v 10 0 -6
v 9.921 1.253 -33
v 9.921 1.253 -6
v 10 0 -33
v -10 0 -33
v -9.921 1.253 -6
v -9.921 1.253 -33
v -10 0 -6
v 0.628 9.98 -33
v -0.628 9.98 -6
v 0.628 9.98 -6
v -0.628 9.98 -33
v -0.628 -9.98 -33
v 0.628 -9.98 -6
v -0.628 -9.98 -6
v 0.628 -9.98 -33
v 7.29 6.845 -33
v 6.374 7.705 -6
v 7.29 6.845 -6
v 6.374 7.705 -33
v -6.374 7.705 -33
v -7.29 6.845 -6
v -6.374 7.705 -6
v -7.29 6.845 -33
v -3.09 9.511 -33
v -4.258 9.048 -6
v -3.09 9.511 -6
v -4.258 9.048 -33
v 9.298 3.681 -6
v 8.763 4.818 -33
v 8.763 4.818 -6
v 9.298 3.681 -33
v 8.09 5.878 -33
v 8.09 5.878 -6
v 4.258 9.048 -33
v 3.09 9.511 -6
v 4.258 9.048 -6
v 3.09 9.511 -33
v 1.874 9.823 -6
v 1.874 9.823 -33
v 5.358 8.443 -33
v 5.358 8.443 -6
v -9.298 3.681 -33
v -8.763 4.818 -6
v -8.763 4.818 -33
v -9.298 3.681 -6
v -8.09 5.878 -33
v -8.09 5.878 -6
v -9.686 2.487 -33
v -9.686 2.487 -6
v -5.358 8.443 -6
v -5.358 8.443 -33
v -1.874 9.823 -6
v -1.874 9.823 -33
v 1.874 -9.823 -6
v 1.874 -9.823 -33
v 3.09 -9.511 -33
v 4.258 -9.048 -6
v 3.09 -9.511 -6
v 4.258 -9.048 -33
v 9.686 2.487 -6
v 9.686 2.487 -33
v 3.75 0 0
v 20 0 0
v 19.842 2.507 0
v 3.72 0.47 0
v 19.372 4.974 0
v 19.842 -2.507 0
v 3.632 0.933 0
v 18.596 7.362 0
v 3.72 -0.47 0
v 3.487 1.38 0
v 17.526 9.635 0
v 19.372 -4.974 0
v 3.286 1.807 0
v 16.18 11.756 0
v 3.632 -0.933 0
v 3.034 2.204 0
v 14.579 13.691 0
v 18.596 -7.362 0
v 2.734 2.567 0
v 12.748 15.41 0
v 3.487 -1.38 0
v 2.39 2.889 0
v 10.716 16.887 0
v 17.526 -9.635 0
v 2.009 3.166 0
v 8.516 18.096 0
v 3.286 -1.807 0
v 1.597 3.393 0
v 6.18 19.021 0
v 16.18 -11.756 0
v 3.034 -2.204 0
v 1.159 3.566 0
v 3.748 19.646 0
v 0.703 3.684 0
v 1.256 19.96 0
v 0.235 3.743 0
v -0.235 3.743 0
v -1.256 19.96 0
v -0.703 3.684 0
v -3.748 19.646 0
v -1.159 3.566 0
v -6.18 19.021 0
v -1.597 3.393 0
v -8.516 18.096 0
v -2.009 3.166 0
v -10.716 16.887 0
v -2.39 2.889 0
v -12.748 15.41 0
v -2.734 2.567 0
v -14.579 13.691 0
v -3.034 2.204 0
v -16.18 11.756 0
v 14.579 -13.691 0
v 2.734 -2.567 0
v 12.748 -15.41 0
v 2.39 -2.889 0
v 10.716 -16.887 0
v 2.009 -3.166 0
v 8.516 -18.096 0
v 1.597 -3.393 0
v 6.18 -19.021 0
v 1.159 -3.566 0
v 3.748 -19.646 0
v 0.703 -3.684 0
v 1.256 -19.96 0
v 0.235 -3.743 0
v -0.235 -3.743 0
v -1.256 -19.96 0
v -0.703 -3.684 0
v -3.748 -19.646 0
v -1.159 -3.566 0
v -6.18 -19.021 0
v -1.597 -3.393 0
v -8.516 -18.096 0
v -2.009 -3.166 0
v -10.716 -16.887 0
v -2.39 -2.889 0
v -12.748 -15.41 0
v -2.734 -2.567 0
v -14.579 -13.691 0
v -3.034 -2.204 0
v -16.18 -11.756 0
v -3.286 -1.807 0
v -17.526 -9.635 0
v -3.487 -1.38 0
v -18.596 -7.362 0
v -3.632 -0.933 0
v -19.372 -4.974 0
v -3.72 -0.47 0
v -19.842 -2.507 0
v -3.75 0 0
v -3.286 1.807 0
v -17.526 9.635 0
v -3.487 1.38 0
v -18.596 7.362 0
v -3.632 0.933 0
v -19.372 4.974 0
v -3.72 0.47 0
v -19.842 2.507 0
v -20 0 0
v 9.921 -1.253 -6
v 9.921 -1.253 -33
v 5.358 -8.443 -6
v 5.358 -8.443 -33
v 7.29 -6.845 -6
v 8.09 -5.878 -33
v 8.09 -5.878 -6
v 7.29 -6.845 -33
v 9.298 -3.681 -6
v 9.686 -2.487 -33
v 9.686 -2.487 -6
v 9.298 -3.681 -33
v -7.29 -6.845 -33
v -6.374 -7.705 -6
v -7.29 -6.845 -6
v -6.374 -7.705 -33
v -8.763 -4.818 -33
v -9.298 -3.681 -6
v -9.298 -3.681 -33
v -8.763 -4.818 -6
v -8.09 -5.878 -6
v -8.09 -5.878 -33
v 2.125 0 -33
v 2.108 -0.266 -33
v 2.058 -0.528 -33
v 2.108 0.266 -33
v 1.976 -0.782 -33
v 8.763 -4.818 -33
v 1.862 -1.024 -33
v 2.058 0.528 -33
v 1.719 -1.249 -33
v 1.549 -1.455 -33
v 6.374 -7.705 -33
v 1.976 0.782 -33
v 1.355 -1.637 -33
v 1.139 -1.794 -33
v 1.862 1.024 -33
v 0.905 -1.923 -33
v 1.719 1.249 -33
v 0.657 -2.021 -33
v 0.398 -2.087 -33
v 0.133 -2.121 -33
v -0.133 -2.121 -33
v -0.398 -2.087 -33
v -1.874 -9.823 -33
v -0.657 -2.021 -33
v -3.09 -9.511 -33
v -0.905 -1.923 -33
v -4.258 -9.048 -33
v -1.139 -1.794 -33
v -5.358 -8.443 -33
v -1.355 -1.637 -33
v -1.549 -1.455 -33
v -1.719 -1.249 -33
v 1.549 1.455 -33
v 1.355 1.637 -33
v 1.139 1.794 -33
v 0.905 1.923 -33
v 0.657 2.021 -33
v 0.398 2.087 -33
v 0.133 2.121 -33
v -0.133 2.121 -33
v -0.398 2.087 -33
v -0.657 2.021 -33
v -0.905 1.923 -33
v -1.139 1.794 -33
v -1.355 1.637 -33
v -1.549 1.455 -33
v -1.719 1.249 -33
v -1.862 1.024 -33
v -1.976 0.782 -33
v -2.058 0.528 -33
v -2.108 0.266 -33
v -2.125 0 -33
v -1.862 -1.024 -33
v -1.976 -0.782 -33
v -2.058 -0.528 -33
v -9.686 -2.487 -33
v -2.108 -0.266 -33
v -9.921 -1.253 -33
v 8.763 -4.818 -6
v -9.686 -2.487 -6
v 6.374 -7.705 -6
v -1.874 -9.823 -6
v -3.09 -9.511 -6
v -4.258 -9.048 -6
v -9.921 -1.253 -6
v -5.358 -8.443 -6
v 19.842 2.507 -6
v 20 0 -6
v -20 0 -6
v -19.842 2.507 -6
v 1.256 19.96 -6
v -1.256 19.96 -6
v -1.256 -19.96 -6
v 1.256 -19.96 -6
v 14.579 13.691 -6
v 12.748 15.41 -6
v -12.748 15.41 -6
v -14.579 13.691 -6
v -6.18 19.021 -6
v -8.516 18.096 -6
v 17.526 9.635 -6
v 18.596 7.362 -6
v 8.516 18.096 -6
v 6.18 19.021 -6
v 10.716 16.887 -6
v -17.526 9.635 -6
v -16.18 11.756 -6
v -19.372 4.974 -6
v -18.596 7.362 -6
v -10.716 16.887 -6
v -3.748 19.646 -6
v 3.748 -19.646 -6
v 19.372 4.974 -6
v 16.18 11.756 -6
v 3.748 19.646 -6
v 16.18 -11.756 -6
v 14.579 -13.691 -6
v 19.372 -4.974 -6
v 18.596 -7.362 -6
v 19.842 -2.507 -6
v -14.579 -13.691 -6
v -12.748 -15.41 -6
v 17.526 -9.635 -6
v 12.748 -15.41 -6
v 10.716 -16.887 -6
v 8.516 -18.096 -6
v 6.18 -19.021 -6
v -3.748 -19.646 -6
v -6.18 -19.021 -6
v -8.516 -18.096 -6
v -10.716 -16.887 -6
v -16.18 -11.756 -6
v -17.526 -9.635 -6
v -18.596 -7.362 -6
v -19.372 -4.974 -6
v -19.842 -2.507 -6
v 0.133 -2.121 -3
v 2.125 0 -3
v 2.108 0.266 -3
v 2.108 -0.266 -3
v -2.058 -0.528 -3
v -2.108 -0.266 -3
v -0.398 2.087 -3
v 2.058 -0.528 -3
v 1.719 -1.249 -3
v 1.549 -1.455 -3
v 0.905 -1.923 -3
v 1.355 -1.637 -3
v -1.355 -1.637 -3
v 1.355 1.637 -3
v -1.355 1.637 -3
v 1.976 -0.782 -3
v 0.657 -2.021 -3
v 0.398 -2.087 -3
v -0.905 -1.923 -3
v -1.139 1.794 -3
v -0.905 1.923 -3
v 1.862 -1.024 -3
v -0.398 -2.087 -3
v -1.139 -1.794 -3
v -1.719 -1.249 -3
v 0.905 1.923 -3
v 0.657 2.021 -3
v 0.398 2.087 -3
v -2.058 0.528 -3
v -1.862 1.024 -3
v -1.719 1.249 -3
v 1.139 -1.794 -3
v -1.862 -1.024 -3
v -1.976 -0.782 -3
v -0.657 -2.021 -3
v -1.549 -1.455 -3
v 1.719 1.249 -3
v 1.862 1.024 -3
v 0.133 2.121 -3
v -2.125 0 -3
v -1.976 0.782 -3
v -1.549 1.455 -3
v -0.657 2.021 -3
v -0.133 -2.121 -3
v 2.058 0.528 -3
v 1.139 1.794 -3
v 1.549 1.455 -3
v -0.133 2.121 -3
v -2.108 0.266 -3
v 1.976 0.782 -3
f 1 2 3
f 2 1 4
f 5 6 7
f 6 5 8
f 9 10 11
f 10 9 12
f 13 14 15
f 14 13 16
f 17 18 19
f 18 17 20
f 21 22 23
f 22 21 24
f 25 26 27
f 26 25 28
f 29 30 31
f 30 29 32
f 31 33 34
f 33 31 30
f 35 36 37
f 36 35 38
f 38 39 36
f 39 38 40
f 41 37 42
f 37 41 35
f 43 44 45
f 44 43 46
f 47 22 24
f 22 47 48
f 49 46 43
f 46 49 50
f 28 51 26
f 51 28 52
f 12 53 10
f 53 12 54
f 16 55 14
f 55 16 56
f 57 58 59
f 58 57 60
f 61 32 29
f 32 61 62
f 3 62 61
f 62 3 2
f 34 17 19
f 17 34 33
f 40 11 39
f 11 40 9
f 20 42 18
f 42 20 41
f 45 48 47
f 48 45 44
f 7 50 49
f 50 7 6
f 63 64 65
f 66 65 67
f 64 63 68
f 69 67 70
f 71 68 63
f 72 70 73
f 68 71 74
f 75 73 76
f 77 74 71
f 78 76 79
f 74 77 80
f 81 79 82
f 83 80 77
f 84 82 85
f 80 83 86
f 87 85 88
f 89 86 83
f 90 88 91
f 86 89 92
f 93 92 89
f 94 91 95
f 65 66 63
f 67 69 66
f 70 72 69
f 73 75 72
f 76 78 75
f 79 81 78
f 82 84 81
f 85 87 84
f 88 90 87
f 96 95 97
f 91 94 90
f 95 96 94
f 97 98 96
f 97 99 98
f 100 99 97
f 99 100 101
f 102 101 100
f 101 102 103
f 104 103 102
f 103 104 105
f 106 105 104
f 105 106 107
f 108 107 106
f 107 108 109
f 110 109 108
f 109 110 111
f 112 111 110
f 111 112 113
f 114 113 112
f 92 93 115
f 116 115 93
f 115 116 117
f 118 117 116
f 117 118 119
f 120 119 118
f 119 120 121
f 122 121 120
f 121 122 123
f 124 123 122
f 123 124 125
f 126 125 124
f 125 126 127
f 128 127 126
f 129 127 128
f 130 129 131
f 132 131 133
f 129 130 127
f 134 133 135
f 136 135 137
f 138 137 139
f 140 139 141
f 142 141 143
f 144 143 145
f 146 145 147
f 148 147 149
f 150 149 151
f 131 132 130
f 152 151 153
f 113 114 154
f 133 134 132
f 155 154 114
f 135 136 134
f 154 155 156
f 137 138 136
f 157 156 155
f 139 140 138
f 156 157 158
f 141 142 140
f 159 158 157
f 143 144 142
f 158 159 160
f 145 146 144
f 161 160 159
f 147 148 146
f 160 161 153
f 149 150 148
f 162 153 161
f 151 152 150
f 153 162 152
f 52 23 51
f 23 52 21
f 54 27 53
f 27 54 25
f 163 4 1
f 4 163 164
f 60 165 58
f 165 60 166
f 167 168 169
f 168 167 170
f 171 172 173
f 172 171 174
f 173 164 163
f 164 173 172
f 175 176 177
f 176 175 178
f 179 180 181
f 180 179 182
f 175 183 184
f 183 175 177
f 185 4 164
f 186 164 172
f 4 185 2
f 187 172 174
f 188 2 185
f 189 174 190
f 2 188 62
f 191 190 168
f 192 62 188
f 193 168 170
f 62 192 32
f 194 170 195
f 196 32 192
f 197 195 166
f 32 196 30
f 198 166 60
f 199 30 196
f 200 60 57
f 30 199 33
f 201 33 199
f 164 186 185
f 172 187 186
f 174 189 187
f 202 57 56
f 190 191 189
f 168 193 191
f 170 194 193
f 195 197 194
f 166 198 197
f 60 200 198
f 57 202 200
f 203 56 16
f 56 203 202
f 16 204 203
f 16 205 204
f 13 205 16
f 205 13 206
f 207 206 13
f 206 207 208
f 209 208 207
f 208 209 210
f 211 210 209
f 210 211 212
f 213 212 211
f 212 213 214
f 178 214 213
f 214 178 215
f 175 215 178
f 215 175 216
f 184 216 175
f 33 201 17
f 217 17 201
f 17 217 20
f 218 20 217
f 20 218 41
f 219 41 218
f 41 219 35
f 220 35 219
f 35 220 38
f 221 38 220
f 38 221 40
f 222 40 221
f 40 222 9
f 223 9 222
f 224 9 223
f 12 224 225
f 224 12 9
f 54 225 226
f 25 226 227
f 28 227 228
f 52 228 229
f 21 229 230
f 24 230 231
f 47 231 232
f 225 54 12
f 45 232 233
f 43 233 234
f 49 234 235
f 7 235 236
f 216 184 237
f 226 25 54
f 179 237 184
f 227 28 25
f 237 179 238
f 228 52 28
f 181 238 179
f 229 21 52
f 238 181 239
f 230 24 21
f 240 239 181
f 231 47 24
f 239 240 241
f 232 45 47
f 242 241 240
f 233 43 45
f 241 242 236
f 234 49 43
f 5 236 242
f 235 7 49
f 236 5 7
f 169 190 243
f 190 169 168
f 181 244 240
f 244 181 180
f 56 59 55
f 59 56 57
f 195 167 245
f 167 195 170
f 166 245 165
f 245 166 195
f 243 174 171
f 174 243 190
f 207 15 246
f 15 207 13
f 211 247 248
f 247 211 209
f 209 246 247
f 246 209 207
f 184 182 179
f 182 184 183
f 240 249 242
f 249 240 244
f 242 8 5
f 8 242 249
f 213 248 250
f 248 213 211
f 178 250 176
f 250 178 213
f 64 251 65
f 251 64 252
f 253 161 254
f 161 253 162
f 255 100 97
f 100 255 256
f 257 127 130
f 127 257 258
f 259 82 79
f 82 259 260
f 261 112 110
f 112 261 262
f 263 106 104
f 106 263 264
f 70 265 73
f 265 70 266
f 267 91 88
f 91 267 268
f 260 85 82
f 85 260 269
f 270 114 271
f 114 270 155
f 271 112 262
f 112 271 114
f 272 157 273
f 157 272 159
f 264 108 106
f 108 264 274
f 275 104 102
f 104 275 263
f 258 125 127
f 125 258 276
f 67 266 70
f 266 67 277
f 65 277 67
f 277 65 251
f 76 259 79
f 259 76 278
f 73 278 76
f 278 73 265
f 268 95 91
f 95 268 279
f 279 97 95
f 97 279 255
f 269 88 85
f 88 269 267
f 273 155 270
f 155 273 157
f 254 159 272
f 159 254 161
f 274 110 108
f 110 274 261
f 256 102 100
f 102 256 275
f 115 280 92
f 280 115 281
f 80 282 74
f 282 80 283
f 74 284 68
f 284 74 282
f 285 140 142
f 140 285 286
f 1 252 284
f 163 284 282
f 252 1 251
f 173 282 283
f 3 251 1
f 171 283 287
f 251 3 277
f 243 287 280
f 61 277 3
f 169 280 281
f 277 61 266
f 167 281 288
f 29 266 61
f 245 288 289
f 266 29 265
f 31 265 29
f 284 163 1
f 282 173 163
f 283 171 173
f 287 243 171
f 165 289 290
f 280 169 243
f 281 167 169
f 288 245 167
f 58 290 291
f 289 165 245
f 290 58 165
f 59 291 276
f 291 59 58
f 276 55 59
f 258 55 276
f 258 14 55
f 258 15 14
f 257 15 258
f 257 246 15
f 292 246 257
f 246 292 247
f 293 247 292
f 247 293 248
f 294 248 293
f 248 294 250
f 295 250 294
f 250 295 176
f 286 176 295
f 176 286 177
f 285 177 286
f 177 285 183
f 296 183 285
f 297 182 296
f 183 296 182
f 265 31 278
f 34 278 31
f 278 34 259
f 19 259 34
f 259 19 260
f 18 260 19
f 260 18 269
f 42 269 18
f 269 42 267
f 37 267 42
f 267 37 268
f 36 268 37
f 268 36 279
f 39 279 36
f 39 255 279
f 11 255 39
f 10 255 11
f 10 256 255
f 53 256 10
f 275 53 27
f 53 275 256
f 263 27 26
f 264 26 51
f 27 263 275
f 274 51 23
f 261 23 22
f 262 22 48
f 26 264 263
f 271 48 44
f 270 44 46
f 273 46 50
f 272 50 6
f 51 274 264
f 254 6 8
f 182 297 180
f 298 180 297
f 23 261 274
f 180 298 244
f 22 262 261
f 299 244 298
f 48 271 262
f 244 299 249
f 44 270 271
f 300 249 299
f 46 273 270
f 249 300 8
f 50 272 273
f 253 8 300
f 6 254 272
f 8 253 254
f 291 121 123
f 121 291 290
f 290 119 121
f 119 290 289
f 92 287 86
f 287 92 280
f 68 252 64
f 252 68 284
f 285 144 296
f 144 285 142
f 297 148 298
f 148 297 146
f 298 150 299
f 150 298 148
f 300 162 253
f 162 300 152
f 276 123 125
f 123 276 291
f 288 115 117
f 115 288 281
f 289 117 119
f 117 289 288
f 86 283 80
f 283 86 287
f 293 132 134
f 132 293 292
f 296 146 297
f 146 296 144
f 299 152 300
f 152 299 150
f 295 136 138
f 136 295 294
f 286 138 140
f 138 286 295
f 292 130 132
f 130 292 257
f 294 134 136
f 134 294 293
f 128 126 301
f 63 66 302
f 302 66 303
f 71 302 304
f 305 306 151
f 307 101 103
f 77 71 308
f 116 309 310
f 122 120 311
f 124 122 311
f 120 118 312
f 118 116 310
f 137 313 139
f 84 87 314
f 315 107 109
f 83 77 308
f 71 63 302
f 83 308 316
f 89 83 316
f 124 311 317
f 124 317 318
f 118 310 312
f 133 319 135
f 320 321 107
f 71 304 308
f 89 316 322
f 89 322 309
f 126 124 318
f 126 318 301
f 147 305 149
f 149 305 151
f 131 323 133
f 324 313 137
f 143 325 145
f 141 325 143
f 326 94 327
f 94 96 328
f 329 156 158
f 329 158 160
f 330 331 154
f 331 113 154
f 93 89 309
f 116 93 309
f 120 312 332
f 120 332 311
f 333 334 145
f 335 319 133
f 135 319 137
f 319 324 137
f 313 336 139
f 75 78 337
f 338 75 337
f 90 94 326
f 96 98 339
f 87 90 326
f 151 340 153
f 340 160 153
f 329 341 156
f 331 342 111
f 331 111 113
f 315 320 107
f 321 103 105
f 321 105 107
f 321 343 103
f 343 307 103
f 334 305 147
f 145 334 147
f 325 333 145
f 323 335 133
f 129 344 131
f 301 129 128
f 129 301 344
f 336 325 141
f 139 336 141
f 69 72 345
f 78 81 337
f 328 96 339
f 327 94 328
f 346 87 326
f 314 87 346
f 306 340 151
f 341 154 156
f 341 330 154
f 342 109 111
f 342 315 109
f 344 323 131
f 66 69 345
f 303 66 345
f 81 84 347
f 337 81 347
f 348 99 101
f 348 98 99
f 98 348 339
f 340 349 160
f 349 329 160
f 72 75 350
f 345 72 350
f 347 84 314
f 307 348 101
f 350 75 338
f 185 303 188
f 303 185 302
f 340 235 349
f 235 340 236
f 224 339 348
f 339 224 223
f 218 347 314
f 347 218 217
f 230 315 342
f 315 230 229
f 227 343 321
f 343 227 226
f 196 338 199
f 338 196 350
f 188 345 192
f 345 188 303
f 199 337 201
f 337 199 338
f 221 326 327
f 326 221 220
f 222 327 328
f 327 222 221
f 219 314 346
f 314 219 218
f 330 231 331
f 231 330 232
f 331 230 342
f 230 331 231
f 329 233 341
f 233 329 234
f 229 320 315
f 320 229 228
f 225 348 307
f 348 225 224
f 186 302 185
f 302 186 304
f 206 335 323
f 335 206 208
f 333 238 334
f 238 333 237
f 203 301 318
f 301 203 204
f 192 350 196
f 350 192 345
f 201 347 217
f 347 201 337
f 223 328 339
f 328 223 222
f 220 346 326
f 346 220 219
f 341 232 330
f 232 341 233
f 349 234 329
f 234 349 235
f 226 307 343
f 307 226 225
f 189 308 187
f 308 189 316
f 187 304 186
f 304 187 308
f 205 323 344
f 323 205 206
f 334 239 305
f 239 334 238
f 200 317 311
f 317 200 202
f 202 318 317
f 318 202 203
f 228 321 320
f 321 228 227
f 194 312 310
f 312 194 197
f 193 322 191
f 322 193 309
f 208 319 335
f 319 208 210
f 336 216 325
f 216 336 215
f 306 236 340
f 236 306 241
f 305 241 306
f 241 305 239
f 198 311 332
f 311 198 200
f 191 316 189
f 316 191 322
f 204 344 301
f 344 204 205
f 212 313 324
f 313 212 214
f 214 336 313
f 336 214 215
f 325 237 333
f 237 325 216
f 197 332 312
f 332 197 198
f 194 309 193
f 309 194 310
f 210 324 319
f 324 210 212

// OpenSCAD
$fn = 50;


difference() {
	union() {
		translate(v = [0, 0, -33.0000000000]) {
			cylinder(h = 33, r = 10.0000000000);
		}
		translate(v = [0, 0, -6.0000000000]) {
			cylinder(h = 6, r = 20.0000000000);
		}
	}
	union() {
		translate(v = [0, 0, 0]) {
			rotate(a = [0, 0, 0]) {
				difference() {
					union() {
						#translate(v = [0, 0, -33.0000000000]) {
							cylinder(h = 33, r = 2.0000000000);
						}
						#translate(v = [0, 0, -3]) {
							cylinder(h = 3, r = 10.0000000000, r1 = 2.1250000000, r2 = 3.7500000000);
						}
						#translate(v = [0, 0, -33.0000000000]) {
							cylinder(h = 33, r = 2.1250000000);
						}
						#translate(v = [0, 0, -33.0000000000]) {
							cylinder(h = 33, r = 2.0000000000);
						}
					}
					union();
				}
			}
		}
	}
}
